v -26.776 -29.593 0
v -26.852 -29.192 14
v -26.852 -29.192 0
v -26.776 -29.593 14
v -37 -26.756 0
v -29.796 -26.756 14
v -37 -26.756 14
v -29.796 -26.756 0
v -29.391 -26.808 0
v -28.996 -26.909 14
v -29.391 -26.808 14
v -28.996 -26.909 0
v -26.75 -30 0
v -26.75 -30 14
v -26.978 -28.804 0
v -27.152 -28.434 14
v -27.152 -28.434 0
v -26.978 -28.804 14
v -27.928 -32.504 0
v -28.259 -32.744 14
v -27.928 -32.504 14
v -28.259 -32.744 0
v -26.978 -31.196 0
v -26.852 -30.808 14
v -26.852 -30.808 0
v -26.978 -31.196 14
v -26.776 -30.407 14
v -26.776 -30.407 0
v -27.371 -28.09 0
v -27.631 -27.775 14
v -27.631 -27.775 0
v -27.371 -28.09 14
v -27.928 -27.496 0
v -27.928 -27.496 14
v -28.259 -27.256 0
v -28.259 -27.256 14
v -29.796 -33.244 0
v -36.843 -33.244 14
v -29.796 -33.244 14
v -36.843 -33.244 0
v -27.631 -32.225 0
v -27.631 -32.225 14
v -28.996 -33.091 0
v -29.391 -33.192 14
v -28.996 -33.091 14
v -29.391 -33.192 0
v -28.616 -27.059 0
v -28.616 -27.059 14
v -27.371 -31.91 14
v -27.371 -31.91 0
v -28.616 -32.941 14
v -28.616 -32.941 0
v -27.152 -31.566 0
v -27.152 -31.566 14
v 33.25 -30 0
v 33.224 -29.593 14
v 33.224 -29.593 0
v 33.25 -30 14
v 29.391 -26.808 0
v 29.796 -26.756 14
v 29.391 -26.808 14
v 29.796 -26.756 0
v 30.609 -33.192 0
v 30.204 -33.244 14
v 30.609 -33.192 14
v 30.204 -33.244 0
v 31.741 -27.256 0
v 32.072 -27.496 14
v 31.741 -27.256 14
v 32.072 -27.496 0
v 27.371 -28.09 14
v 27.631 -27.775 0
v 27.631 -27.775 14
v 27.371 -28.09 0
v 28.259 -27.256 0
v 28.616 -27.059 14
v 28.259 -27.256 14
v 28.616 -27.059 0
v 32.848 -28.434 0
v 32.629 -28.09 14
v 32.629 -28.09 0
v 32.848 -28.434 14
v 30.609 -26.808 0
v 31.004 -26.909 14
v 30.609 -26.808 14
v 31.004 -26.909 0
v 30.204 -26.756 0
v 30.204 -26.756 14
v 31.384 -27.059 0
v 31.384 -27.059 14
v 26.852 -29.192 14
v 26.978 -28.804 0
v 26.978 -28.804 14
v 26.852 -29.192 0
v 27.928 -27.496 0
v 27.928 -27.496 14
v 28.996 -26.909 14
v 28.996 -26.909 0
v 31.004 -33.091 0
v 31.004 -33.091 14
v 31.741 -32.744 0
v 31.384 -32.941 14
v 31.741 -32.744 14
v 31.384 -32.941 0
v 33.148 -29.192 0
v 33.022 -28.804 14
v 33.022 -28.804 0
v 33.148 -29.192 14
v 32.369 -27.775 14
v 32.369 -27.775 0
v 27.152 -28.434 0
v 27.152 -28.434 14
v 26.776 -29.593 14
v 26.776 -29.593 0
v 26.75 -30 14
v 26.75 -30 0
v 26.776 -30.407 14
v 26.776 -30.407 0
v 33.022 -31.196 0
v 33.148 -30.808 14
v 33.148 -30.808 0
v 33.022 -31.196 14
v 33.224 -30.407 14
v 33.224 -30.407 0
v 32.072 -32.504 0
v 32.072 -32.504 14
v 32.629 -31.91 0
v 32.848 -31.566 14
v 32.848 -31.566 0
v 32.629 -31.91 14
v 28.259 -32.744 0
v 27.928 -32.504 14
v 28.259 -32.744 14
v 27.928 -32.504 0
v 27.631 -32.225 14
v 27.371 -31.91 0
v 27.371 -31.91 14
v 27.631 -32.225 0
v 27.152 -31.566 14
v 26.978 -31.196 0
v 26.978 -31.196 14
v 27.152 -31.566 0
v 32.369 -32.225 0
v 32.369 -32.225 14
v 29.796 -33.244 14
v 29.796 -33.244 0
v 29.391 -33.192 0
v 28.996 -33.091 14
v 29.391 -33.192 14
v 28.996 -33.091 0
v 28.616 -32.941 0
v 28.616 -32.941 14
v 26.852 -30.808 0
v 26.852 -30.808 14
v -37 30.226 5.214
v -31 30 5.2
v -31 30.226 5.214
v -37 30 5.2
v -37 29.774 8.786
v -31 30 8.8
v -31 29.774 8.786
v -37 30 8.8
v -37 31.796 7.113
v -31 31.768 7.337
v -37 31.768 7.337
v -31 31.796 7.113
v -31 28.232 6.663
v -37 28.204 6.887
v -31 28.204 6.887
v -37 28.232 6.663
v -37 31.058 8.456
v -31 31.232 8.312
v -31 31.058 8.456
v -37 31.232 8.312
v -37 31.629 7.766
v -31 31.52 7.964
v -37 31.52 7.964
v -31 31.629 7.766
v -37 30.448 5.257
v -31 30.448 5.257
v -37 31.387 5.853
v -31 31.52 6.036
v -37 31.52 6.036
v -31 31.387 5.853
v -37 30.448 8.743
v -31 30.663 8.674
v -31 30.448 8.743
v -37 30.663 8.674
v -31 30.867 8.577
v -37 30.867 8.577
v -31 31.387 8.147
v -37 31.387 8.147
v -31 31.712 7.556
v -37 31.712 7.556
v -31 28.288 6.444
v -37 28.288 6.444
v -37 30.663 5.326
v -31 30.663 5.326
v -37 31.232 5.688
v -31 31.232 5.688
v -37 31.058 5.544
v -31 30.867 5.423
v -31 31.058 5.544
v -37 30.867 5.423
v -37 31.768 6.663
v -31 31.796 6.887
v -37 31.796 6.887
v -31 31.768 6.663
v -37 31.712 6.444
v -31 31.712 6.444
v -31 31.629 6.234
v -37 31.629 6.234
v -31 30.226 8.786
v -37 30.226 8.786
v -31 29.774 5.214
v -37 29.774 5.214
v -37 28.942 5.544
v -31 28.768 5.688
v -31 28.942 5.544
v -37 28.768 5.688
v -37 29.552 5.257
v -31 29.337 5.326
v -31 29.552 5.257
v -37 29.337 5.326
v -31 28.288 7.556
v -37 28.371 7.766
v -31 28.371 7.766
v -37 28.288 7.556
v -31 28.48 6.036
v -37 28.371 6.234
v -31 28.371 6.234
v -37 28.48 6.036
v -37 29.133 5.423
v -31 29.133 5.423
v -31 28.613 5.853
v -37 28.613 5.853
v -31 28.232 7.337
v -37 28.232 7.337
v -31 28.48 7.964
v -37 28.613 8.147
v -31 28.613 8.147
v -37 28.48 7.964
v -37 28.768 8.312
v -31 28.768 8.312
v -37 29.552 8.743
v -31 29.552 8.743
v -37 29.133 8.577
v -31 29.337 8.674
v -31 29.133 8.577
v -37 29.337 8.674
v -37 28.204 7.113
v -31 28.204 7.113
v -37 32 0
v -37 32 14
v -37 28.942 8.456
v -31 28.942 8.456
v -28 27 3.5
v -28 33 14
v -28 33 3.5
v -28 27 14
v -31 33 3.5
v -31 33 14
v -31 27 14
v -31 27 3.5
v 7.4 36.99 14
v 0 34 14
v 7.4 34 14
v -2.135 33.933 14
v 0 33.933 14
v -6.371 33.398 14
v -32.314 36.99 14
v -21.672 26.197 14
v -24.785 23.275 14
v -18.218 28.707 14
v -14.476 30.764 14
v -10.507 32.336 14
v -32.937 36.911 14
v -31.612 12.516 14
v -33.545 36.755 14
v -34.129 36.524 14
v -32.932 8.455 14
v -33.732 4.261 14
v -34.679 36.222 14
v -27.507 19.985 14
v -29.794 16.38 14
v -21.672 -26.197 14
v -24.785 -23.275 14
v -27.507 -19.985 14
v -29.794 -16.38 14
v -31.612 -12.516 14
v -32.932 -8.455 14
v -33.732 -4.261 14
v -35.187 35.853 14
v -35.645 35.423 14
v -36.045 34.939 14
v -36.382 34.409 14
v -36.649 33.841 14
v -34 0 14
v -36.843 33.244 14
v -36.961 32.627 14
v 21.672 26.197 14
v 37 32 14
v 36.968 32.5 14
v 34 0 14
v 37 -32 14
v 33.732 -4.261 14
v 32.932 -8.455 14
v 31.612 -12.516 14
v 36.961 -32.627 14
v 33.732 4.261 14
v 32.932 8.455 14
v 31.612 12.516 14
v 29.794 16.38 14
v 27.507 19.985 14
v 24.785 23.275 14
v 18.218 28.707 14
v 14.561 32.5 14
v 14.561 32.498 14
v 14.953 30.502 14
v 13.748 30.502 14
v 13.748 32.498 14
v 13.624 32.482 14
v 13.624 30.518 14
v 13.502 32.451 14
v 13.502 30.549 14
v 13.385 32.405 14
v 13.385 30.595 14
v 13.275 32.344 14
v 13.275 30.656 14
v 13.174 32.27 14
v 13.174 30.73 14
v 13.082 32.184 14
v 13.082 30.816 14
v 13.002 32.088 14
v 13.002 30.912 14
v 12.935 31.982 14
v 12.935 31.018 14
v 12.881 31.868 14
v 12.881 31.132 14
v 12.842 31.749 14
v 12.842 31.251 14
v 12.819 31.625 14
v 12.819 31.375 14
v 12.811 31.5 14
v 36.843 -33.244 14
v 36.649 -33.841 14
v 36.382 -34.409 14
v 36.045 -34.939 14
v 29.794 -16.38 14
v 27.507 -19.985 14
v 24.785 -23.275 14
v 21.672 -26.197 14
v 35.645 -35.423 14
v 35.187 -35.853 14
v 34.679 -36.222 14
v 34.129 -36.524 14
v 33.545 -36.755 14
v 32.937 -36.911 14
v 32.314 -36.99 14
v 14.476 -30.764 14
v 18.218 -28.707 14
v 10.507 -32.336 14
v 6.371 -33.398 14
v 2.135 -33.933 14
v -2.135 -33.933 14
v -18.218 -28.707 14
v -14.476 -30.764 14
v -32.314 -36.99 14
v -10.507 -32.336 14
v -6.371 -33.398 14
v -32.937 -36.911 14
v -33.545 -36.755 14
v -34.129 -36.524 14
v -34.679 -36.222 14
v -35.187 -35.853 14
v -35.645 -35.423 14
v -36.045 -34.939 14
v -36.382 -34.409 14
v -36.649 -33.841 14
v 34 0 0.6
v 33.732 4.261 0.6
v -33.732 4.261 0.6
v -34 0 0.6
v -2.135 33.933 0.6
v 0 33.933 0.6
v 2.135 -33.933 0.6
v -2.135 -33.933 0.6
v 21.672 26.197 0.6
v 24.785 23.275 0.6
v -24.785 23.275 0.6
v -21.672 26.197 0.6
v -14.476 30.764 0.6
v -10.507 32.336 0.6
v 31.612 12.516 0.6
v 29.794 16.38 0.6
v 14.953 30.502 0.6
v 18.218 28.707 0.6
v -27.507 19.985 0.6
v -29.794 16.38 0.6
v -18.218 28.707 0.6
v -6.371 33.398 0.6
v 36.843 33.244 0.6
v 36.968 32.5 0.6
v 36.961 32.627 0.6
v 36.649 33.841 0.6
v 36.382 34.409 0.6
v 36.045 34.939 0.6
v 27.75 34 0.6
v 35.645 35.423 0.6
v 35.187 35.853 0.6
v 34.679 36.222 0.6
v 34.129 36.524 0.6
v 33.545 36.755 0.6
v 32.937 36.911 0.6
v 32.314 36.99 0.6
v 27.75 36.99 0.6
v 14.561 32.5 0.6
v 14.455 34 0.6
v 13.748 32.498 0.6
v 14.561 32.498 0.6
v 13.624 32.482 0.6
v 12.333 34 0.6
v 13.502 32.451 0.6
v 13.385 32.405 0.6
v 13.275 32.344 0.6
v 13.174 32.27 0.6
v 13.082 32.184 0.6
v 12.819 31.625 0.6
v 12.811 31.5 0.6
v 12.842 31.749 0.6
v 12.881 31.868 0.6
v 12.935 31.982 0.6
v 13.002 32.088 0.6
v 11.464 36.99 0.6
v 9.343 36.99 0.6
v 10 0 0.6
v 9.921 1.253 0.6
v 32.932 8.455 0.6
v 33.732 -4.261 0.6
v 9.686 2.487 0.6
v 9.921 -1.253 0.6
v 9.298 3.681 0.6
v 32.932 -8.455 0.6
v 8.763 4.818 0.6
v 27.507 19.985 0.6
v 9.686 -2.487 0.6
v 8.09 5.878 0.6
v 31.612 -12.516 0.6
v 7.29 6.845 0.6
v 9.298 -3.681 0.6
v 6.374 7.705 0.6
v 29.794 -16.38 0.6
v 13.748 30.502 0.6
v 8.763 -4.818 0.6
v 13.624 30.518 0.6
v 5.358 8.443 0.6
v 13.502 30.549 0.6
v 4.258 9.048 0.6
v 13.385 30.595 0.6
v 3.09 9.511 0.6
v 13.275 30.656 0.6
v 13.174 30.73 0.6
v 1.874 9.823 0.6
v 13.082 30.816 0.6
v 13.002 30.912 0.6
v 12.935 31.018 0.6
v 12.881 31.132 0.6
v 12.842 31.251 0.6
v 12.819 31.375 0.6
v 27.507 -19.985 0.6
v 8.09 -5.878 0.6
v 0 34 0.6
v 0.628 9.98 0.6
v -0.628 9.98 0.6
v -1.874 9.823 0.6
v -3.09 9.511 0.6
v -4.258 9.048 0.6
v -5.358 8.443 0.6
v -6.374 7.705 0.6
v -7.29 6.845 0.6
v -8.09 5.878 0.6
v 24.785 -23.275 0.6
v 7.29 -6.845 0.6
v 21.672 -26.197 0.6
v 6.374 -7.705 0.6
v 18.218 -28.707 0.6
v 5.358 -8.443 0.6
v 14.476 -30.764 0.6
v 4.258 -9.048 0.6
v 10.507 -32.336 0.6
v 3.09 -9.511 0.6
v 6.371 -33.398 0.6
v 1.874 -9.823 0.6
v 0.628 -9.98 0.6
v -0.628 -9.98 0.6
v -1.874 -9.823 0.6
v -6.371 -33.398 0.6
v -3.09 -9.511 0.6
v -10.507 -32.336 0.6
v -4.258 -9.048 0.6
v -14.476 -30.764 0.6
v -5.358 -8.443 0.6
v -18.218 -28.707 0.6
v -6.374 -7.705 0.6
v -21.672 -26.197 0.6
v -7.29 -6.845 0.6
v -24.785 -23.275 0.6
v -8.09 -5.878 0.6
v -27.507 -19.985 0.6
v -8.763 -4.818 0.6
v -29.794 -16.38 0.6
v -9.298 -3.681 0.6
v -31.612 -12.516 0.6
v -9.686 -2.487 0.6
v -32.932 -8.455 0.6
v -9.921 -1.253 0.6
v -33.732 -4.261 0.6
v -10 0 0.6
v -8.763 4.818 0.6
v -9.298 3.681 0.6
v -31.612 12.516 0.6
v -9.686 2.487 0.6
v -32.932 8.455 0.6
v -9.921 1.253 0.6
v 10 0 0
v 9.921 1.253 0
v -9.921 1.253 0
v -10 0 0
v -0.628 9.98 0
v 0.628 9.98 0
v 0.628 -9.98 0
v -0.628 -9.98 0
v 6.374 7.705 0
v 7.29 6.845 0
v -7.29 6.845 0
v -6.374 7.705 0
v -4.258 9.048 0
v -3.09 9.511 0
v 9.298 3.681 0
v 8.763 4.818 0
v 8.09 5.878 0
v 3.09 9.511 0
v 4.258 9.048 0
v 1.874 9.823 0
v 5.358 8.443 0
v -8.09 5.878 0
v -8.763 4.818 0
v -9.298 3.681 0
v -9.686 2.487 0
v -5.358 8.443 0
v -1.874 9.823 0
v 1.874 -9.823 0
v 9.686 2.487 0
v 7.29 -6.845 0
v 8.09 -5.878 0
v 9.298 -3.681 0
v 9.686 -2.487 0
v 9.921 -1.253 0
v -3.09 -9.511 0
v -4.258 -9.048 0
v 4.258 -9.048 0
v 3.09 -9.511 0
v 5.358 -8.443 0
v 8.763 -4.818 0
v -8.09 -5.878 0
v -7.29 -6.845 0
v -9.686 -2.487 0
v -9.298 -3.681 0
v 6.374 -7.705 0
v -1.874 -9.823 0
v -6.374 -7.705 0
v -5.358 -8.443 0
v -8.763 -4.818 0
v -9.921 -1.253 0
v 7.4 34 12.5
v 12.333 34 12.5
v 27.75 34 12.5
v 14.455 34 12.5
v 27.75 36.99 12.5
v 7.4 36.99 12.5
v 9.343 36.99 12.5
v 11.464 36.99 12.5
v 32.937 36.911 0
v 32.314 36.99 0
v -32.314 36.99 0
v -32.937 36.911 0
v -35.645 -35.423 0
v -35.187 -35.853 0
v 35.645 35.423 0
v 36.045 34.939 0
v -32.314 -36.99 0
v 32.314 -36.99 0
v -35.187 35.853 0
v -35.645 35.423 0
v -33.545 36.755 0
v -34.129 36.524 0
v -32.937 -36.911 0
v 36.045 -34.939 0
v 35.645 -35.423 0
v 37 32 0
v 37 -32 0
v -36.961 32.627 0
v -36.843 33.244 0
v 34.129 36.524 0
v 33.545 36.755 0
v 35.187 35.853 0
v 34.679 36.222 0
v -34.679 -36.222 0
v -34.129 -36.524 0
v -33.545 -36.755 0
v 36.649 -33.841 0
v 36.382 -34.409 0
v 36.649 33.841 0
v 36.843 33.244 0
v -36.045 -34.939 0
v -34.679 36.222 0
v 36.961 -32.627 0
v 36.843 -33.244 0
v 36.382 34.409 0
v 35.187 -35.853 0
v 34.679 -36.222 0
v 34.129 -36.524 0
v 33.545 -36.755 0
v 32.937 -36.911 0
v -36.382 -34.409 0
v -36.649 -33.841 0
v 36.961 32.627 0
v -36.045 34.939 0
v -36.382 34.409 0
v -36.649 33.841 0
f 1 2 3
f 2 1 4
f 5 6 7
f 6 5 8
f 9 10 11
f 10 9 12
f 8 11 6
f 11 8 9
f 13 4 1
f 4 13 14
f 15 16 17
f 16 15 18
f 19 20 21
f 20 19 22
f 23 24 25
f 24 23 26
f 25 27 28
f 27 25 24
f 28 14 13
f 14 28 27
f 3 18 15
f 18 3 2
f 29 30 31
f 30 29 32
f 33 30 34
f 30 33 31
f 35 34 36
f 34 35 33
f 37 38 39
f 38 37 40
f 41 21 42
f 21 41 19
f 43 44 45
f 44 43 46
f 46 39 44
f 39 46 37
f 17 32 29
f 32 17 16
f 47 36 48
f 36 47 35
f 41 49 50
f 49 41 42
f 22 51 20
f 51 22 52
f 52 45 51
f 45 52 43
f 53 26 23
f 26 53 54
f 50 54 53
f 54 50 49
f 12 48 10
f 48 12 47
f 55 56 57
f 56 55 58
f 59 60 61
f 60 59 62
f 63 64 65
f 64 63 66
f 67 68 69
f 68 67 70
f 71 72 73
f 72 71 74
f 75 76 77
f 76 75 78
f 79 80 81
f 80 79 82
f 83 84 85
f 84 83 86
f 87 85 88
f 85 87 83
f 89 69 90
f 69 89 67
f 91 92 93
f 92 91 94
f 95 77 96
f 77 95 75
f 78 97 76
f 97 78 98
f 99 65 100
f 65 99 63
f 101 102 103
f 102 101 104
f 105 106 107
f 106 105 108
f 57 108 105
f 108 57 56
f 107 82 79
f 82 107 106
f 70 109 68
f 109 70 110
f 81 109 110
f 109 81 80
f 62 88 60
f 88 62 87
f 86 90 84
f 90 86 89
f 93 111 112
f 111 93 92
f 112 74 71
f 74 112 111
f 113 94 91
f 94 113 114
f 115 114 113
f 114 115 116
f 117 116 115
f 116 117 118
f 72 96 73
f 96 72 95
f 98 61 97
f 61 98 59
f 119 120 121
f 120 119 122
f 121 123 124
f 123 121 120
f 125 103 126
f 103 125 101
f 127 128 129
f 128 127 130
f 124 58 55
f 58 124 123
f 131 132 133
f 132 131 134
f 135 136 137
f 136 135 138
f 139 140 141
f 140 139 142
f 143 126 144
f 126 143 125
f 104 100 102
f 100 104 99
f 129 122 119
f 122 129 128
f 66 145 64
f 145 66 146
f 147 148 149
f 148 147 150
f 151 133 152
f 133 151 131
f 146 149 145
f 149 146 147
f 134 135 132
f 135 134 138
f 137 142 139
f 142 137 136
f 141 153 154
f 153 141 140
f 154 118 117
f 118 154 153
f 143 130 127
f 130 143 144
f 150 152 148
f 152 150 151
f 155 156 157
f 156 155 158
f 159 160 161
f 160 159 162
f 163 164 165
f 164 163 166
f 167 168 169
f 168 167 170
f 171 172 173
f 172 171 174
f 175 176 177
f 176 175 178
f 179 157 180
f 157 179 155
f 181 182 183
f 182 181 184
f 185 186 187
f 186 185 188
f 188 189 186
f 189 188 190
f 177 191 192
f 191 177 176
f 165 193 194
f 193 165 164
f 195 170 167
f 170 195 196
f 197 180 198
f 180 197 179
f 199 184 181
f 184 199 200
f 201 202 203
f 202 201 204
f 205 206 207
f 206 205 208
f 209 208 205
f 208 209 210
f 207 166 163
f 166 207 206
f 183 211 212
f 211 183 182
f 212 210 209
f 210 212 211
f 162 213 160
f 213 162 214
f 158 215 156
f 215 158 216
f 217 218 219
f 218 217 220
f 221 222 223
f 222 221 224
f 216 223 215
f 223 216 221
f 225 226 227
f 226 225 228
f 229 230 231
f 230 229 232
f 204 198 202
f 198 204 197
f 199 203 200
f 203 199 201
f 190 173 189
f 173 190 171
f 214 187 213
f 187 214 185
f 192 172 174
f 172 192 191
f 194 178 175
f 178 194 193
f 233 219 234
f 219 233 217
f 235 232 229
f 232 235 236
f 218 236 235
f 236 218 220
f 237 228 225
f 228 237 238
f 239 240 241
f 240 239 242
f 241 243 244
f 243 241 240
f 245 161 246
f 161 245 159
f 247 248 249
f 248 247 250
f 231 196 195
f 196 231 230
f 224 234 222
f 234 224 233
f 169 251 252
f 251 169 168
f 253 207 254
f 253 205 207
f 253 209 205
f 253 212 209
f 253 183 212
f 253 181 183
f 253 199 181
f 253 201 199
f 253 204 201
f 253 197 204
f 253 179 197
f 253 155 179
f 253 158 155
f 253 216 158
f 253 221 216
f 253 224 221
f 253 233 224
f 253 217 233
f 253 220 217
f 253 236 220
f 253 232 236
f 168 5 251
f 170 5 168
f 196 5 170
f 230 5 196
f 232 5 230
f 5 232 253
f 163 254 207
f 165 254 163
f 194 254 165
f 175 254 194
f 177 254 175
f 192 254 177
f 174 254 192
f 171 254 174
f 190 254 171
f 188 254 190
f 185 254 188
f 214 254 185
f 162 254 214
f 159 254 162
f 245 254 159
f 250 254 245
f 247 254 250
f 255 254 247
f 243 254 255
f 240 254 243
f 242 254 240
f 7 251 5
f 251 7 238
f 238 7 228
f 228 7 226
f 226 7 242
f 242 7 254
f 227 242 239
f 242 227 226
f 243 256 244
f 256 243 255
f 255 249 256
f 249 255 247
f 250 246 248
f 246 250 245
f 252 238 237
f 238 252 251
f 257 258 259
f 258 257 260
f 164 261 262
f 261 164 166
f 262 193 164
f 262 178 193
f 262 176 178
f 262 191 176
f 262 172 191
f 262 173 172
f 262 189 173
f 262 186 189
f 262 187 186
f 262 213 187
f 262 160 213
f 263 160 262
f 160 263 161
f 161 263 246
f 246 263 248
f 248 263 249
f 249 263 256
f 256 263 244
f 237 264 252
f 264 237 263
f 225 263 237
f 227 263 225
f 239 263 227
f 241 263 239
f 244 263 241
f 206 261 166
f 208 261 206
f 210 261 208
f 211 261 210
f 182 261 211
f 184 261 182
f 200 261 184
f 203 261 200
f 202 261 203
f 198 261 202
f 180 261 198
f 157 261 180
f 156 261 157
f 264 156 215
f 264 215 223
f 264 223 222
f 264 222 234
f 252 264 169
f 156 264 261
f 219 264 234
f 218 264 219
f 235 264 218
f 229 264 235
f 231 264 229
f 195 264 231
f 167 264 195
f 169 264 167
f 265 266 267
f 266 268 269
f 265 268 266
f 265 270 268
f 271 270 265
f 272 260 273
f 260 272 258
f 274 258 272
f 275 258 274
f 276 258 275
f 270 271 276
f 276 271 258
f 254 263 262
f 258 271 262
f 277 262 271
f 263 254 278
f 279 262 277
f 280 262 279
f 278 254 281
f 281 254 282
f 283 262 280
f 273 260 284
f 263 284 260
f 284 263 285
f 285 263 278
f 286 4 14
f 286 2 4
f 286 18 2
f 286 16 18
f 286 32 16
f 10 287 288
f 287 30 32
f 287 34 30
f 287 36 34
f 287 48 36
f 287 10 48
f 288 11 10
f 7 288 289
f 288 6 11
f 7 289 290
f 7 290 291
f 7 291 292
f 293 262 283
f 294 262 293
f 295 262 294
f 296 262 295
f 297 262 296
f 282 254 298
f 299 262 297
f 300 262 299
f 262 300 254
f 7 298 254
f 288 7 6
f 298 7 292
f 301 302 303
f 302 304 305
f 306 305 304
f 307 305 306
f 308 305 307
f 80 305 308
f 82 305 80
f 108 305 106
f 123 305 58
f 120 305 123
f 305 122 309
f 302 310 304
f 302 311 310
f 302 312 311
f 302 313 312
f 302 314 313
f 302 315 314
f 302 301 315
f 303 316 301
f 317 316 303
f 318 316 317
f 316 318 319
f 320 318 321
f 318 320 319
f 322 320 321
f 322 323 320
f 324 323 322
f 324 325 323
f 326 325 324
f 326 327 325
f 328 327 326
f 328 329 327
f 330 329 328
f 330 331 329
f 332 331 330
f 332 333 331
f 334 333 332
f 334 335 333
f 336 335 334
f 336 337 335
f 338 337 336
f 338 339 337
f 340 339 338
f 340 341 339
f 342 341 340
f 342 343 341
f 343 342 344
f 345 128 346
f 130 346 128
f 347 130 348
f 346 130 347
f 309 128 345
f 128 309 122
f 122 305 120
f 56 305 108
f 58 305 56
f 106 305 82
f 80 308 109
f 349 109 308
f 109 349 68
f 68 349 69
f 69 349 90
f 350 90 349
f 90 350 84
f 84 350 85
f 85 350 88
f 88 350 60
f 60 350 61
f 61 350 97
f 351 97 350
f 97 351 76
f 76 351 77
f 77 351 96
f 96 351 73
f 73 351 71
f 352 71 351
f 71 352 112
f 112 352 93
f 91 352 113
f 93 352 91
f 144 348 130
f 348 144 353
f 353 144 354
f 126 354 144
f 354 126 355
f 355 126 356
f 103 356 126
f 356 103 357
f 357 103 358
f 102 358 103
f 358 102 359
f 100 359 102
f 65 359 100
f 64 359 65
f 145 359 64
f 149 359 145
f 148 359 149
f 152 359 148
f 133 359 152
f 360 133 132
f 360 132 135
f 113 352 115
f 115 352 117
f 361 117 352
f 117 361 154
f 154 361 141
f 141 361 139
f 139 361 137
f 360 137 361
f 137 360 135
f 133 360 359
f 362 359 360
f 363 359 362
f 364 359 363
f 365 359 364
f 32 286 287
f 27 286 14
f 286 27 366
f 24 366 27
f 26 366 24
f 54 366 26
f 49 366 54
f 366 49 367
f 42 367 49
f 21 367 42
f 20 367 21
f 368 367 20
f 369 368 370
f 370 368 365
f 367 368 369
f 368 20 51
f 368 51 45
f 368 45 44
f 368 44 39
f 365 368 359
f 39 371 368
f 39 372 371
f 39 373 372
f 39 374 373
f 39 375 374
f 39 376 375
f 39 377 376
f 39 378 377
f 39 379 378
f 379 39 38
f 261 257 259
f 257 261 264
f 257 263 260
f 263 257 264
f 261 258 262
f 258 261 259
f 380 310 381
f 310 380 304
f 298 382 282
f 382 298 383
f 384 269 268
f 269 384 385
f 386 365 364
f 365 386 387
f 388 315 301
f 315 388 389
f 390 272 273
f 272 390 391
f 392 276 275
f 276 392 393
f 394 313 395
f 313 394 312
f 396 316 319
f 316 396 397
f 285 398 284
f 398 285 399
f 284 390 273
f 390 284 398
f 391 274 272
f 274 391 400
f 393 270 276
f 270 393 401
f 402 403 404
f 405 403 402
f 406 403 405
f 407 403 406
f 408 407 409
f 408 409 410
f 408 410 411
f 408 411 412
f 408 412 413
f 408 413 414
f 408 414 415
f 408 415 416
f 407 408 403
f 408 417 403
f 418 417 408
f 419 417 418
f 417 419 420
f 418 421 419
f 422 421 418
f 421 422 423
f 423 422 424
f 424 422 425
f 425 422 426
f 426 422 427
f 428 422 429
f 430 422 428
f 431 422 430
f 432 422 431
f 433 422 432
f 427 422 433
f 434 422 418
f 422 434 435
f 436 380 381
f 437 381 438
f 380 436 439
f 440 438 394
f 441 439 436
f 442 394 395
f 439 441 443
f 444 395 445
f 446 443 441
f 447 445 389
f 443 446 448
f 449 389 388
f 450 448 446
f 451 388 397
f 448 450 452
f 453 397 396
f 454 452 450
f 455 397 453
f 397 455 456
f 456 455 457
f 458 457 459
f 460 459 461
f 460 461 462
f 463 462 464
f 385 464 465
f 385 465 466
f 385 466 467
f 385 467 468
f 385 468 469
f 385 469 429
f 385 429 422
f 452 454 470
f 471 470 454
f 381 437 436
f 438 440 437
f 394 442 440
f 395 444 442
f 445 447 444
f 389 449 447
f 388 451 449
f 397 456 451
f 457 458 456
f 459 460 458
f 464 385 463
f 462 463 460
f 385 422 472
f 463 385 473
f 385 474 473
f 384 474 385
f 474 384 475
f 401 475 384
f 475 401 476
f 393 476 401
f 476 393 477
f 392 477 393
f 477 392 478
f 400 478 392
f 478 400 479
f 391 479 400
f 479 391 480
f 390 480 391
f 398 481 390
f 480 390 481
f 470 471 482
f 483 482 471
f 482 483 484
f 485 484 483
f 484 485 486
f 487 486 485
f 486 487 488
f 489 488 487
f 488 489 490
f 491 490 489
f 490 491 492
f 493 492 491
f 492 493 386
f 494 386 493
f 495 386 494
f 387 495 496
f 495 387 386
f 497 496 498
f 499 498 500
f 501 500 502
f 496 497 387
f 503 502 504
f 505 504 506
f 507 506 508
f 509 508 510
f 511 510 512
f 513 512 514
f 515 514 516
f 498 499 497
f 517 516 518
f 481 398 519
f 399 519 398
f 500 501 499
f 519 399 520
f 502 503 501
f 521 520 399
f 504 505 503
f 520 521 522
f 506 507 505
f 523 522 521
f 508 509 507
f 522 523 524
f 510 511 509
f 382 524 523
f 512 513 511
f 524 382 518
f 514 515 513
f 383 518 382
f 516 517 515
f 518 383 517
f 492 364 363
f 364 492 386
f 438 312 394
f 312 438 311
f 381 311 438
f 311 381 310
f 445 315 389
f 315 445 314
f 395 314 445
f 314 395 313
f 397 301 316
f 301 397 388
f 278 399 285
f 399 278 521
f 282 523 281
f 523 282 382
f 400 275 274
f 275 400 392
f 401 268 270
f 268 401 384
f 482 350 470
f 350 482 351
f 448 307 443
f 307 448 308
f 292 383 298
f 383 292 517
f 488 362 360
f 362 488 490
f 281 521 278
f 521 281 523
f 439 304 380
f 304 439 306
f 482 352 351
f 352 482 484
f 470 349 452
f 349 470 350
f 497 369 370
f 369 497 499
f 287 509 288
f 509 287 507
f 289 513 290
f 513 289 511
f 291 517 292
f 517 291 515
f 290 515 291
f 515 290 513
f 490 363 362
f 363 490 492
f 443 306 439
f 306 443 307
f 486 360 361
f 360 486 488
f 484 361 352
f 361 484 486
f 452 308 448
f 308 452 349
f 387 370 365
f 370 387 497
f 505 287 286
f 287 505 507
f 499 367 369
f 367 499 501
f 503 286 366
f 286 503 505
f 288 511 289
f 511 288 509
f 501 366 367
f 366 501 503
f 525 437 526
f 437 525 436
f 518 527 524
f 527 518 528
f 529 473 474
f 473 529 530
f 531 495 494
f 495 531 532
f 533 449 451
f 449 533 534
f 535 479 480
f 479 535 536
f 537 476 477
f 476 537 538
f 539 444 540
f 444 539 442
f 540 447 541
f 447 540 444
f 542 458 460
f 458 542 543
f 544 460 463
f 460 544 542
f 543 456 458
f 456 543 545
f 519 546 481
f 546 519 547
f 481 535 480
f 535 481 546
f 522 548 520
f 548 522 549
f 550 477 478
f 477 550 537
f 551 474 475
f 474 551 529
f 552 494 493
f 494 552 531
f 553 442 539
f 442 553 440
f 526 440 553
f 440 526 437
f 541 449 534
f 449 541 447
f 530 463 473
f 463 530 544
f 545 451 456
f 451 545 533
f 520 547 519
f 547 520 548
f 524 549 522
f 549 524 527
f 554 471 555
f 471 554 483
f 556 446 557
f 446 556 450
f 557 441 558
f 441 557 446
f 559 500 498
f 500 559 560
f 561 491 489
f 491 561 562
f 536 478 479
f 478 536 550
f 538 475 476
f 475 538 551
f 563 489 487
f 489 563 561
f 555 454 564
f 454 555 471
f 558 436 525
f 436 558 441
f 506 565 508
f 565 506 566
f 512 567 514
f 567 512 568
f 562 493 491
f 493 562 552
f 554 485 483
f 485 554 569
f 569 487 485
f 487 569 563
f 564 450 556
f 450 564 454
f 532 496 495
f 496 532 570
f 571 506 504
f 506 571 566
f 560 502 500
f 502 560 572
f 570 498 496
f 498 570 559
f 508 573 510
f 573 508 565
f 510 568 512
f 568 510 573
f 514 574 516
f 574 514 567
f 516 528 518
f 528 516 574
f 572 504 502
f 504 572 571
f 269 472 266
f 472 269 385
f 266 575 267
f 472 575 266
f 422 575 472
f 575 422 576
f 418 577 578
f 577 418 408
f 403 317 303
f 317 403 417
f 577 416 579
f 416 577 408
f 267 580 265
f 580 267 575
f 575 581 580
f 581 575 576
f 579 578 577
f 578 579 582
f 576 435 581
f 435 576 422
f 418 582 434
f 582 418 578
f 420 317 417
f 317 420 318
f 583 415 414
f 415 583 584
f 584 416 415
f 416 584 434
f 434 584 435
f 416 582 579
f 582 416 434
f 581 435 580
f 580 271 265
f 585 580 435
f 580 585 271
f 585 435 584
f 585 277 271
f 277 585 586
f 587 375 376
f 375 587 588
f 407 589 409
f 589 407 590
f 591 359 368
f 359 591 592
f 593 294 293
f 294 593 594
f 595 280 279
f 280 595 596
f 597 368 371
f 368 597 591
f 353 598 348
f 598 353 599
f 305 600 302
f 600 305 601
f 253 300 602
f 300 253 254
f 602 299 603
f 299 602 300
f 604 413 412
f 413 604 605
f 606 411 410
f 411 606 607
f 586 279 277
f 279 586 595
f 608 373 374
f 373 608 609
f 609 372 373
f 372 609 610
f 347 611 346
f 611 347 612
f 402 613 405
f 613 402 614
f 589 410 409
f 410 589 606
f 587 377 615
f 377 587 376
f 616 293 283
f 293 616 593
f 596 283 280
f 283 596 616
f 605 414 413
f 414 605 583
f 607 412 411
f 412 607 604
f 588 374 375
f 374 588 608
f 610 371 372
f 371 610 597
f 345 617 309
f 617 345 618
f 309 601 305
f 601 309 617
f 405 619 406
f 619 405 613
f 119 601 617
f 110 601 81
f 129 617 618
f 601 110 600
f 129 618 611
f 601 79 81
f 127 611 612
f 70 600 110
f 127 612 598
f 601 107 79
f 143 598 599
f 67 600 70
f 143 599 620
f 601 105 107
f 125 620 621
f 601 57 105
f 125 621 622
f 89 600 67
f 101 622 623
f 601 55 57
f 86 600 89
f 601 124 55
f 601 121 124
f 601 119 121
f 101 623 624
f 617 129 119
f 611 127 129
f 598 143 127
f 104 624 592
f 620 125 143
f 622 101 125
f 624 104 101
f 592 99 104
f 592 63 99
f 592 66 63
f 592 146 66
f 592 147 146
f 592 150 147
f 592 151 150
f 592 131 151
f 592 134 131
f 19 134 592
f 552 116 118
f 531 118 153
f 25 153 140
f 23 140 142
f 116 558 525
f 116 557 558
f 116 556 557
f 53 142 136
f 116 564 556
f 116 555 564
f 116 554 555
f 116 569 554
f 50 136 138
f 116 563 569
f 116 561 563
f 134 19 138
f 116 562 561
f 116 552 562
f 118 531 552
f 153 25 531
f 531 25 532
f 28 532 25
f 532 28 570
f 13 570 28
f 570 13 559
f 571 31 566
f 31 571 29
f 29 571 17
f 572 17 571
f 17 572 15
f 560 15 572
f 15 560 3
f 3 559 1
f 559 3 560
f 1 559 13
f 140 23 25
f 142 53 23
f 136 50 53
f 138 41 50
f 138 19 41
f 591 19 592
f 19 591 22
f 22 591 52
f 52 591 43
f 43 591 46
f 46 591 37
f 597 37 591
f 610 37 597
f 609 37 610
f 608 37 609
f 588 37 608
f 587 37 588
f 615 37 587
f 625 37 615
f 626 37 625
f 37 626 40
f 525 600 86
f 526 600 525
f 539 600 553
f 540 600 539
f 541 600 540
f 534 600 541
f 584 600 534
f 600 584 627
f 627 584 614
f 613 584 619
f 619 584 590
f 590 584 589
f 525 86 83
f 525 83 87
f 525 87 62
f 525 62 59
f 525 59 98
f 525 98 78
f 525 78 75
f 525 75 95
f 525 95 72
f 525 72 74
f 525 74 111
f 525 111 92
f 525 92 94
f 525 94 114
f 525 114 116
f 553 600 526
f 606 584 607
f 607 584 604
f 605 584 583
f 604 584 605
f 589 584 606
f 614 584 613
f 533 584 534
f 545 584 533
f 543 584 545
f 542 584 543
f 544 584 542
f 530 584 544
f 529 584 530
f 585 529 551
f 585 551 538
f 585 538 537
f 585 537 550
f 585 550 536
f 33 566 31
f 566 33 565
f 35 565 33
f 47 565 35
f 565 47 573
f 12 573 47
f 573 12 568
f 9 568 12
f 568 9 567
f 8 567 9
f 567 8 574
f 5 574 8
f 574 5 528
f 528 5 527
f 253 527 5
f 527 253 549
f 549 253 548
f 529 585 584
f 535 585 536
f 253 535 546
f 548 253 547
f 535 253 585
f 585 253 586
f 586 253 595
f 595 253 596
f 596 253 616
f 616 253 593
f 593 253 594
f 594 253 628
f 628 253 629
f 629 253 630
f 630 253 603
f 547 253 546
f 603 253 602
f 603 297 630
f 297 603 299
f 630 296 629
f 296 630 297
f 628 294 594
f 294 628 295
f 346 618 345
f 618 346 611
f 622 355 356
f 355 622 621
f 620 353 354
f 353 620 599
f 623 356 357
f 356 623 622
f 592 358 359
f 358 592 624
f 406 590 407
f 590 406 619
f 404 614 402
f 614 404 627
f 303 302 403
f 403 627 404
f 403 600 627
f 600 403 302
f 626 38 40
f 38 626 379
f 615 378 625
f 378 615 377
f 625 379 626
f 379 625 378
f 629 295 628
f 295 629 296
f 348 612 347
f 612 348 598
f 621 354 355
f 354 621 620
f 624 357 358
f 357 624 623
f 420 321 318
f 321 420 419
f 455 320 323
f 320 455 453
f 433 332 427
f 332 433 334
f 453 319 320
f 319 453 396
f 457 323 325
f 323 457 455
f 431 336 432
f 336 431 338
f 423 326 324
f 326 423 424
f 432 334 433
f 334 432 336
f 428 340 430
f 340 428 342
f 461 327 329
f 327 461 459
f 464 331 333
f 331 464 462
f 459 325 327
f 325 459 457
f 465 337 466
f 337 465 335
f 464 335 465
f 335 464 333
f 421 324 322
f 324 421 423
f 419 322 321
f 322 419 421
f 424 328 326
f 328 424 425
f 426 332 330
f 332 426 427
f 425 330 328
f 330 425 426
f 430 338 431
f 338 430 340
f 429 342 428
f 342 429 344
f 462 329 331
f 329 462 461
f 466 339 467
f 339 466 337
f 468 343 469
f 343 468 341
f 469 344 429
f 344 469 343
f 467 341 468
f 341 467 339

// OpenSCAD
$fn = 50;


union() {
	difference() {
		union() {
			translate(v = [0, 0, 0]) {
				rotate(a = [0, 0, 0]) {
					hull() {
						translate(v = [-32.0000000000, 32.0000000000, 0]) {
							rotate(a = [0, 0, 0]) {
								translate(v = [0, 0, 0]) {
									rotate(a = [0, 0, 0]) {
										cylinder(h = 14, r = 5);
									}
								}
							}
						}
						translate(v = [32.0000000000, 32.0000000000, 0]) {
							rotate(a = [0, 0, 0]) {
								translate(v = [0, 0, 0]) {
									rotate(a = [0, 0, 0]) {
										cylinder(h = 14, r = 5);
									}
								}
							}
						}
						translate(v = [-32.0000000000, -32.0000000000, 0]) {
							rotate(a = [0, 0, 0]) {
								translate(v = [0, 0, 0]) {
									rotate(a = [0, 0, 0]) {
										cylinder(h = 14, r = 5);
									}
								}
							}
						}
						translate(v = [32.0000000000, -32.0000000000, 0]) {
							rotate(a = [0, 0, 0]) {
								translate(v = [0, 0, 0]) {
									rotate(a = [0, 0, 0]) {
										cylinder(h = 14, r = 5);
									}
								}
							}
						}
					}
				}
			}
		}
		union() {
			translate(v = [-37.5000000000, -30.0000000000, -125]) {
				rotate(a = [0, 0, 0]) {
					hull() {
						translate(v = [7.5000000000, 0, 0]) {
							rotate(a = [0, 0, 0]) {
								translate(v = [0, 0, 0]) {
									rotate(a = [0, 0, 0]) {
										cylinder(h = 250, r = 3.2500000000);
									}
								}
							}
						}
						translate(v = [-7.5000000000, 0, 0]) {
							rotate(a = [0, 0, 0]) {
								translate(v = [0, 0, 0]) {
									rotate(a = [0, 0, 0]) {
										cylinder(h = 250, r = 3.2500000000);
									}
								}
							}
						}
					}
				}
			}
			translate(v = [30.0000000000, -30.0000000000, -125.0000000000]) {
				rotate(a = [0, 0, 0]) {
					cylinder(h = 250, r = 3.2500000000);
				}
			}
			translate(v = [-37.0000000000, 30.0000000000, 7.0000000000]) {
				rotate(a = [0, 90, 0]) {
					cylinder(h = 9, r = 1.8000000000);
				}
			}
			translate(v = [-31.0000000000, 27.0000000000, 3.5000000000]) {
				rotate(a = [0, 0, 0]) {
					cube(size = [3, 6, 10.5000000000]);
				}
			}
			translate(v = [0, 0, 0.6000000000]) {
				rotate(a = [0, 0, 0]) {
					cylinder(h = 16.4000000000, r = 34.0000000000);
				}
			}
			translate(v = [0, 0, -7.0000000000]) {
				rotate(a = [0, 0, 0]) {
					cylinder(h = 14, r = 10.0000000000);
				}
			}
			translate(v = [0.0000000000, 32.5000000000, 0.6000000000]) {
				rotate(a = [0, 0, 0]) {
					cube(size = [37.0000000000, 1.5000000000, 16.4000000000]);
				}
			}
			translate(v = [27.7500000000, 32.5000000000, 0.6000000000]) {
				rotate(a = [0, 0, 0]) {
					cube(size = [9.2500000000, 4.5000000000, 16.4000000000]);
				}
			}
			translate(v = [7.4000000000, 32.5000000000, 12.5000000000]) {
				rotate(a = [0, 0, 0]) {
					cube(size = [29.6000000000, 4.5000000000, 1.5000000000]);
				}
			}
			translate(v = [8.5833333333, 37.7500000000, 0.6000000000]) {
				rotate(a = [0, 0, -45]) {
					cube(size = [7.5000000000, 1.5000000000, 16.4000000000]);
				}
			}
			translate(v = [7.0610000000, 30.5000000000, 0.6000000000]) {
				rotate(a = [0, 0, 0]) {
					cube(size = [7.5000000000, 2, 13.4000000000]);
				}
			}
		}
	}
	union() {
		translate(v = [16.3110000000, 31.5000000000, 0]) {
			rotate(a = [0, 0, 0]) {
				hull() {
					translate(v = [2.5000000000, 0, 0]) {
						rotate(a = [0, 0, 0]) {
							translate(v = [0, 0, 0]) {
								rotate(a = [0, 0, 0]) {
									cylinder(h = 14, r = 1.0000000000);
								}
							}
						}
					}
					translate(v = [-2.5000000000, 0, 0]) {
						rotate(a = [0, 0, 0]) {
							translate(v = [0, 0, 0]) {
								rotate(a = [0, 0, 0]) {
									cylinder(h = 14, r = 1.0000000000);
								}
							}
						}
					}
				}
			}
		}
	}
}
